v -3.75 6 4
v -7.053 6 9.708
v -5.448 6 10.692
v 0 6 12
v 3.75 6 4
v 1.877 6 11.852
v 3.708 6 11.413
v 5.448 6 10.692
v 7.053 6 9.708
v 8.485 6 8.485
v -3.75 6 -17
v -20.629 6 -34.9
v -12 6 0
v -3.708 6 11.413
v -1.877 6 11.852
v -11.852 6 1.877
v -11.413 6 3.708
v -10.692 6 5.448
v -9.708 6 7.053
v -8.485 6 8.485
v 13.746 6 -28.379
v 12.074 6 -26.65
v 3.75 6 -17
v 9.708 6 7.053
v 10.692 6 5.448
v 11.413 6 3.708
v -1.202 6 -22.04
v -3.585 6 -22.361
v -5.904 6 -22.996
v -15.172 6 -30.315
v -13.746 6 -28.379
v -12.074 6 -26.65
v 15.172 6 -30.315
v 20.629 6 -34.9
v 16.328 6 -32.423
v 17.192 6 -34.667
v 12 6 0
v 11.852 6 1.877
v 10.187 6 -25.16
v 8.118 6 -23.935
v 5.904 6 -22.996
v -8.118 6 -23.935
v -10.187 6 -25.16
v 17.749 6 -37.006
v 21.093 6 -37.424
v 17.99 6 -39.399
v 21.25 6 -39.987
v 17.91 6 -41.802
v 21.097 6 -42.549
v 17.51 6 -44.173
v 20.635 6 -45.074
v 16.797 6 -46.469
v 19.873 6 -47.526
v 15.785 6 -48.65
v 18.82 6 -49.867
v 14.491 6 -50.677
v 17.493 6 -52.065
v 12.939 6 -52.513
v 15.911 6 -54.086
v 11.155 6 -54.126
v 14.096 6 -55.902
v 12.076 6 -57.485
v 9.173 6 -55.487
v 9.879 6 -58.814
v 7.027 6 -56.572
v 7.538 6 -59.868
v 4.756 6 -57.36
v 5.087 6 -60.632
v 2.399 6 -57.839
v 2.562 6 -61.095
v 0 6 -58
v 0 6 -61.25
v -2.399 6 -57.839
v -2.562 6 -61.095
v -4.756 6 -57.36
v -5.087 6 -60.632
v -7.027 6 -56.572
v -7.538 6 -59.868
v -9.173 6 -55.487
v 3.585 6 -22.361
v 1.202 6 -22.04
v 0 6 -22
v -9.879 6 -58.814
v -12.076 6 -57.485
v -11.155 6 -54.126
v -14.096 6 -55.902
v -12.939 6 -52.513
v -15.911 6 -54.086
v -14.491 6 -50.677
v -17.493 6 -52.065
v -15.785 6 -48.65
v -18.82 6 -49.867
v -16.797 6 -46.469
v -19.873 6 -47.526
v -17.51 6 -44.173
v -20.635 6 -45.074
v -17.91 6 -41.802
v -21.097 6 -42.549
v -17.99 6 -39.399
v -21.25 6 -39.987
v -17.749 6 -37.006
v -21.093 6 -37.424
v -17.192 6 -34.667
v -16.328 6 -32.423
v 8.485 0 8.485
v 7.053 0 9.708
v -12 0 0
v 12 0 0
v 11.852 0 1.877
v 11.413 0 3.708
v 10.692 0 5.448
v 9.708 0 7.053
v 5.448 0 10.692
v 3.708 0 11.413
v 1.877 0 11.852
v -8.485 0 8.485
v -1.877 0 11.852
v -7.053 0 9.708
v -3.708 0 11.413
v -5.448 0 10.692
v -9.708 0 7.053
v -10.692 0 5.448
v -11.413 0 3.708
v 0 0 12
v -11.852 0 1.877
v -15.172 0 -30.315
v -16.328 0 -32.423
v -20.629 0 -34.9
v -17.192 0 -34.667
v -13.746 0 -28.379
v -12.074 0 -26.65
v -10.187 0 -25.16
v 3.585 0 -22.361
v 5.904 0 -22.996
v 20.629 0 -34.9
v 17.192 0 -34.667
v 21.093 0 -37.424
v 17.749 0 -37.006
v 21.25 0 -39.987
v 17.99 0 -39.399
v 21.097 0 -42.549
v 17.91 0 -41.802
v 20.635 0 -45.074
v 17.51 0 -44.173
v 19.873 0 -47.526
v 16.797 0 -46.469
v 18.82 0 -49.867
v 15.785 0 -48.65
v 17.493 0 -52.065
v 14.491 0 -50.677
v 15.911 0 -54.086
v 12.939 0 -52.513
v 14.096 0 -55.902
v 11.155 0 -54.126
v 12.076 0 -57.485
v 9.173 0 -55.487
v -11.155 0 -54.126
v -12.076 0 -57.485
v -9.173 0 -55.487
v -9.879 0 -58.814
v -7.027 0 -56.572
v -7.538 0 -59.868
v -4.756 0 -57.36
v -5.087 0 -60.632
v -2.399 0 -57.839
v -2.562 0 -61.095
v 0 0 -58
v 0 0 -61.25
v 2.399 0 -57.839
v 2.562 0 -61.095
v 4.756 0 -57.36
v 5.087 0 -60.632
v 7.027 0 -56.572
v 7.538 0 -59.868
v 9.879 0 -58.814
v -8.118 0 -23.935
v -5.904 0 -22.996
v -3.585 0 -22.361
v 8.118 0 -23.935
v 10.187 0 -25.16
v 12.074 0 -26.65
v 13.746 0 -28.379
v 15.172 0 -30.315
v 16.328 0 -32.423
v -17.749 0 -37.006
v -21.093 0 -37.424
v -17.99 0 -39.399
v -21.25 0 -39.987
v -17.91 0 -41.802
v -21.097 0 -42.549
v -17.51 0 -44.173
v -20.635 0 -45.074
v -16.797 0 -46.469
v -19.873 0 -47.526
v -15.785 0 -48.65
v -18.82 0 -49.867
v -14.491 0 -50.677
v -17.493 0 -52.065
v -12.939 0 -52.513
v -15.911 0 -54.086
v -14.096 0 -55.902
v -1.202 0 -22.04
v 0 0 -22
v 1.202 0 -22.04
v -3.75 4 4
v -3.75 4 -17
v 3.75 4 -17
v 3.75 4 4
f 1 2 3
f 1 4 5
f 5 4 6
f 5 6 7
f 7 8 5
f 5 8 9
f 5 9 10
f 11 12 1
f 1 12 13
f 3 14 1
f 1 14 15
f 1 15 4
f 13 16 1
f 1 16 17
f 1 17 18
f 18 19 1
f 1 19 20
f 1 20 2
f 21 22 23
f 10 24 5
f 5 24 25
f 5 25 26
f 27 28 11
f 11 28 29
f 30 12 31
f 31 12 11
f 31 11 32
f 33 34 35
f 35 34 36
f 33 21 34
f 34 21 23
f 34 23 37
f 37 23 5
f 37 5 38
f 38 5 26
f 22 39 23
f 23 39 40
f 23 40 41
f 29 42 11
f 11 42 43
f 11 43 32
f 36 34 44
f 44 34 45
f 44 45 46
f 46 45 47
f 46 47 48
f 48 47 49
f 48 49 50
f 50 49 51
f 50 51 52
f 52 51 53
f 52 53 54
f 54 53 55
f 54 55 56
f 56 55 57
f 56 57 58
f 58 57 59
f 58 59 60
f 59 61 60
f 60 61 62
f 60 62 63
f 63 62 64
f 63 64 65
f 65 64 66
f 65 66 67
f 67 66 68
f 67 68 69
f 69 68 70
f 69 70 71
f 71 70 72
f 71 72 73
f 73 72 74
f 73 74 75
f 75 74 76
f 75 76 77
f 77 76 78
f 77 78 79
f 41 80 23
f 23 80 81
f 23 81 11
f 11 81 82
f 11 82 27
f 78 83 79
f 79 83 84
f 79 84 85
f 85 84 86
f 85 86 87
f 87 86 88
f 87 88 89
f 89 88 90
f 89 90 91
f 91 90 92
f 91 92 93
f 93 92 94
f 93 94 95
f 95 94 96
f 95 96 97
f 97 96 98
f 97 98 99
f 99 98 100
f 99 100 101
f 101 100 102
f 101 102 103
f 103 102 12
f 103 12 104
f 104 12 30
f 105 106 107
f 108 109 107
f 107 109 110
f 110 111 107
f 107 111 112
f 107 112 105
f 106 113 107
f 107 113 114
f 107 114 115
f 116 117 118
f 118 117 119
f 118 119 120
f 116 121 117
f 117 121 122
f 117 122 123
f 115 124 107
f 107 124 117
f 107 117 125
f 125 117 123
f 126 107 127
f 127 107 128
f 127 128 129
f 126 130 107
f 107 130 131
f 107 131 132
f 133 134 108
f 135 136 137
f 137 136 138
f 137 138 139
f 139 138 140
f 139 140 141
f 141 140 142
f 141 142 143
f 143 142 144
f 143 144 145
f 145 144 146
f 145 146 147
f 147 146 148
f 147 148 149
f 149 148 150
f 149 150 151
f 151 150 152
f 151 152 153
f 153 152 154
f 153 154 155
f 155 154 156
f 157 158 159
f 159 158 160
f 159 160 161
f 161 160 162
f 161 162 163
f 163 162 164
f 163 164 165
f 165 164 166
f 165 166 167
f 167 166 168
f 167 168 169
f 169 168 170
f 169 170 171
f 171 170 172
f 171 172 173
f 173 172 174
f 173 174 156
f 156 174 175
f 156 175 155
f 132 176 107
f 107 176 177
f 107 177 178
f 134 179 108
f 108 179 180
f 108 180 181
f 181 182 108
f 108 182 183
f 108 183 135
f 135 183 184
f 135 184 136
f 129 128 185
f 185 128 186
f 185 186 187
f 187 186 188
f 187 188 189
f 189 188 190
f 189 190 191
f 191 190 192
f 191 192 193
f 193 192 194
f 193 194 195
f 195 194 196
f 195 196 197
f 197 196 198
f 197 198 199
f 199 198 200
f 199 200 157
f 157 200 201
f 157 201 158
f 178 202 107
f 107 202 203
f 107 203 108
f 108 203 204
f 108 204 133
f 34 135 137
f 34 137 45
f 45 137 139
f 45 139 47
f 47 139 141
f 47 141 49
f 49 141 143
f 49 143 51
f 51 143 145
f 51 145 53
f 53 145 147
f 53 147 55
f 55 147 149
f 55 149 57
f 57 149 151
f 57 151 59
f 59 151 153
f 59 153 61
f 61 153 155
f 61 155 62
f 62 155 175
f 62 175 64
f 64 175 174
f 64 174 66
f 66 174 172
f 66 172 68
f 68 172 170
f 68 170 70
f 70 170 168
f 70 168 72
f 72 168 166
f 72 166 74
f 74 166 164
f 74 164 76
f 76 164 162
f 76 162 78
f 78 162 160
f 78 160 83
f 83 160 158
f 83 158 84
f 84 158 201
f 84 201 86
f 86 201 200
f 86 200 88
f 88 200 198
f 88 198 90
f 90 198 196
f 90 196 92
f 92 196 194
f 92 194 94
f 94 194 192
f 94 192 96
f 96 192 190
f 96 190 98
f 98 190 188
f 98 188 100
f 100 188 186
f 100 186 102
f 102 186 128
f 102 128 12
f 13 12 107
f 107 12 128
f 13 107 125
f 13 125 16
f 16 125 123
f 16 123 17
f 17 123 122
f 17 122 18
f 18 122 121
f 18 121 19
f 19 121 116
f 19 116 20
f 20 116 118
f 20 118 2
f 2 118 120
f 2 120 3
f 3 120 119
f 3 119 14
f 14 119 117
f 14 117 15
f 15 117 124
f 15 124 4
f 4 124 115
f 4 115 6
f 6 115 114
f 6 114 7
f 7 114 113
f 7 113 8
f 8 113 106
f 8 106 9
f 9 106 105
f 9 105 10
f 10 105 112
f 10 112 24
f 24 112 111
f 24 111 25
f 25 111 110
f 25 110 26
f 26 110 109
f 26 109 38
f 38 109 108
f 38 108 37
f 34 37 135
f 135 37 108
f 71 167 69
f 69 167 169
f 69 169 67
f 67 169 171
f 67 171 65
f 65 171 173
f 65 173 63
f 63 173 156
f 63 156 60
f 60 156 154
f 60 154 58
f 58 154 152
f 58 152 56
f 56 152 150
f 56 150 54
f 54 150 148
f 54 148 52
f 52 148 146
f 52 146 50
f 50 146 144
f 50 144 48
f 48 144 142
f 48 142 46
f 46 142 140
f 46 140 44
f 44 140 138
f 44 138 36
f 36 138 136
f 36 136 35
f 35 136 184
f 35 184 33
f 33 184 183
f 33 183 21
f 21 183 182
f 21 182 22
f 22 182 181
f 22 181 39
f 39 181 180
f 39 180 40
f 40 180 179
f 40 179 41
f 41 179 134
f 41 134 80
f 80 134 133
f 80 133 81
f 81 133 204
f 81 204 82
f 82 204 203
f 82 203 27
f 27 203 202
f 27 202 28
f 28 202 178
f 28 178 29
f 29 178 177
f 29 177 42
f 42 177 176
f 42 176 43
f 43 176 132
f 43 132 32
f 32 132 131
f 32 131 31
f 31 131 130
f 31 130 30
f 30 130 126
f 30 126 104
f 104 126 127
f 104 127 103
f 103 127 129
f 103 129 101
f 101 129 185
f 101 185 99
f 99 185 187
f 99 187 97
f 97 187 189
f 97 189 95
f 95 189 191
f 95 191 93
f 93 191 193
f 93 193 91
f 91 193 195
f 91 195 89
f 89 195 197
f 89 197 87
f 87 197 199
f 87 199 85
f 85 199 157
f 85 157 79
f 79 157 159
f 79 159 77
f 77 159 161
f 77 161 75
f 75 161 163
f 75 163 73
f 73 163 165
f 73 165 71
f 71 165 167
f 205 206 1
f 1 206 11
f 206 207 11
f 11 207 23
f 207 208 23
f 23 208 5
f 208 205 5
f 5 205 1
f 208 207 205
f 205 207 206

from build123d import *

# Parameters (mm, degrees)
SKETCH1_R           = 18
BOSS_EXTRUDE1_DEPTH = 6
SKETCH2_W           = 7.5
SKETCH2_H           = 21
CUT_EXTRUDE1_DEPTH  = 2


with BuildPart() as part:
    # Sketch1 → Boss-Extrude1 (new body)
    with BuildSketch(Plane(origin=(0, 0, 0), x_dir=(1, 0, 0), z_dir=(0, 1, 0))):
        with BuildLine():
            Line((-20.628820967, 34.89958379), (-12, 0))
            ThreePointArc((-12, 0), (0, -12), (12, 0))
            Line((12, 0), (20.628820967, 34.89958379))
            ThreePointArc((20.628820967, 34.89958379), (0, 61.25), (-20.628820967, 34.89958379))
        make_face()
        with Locations((0, 40)):
            Circle(SKETCH1_R, mode=Mode.SUBTRACT)
    extrude(amount=BOSS_EXTRUDE1_DEPTH)

    # Sketch2 → Cut-Extrude1 (cut)
    with BuildSketch(Plane(origin=(0, 6, 0), x_dir=(1, 0, 0), z_dir=(0, 1, 0))):
        with Locations((0, 6.5)):
            Rectangle(SKETCH2_W, SKETCH2_H)
    extrude(amount=-CUT_EXTRUDE1_DEPTH, mode=Mode.SUBTRACT)


solid = part.part
